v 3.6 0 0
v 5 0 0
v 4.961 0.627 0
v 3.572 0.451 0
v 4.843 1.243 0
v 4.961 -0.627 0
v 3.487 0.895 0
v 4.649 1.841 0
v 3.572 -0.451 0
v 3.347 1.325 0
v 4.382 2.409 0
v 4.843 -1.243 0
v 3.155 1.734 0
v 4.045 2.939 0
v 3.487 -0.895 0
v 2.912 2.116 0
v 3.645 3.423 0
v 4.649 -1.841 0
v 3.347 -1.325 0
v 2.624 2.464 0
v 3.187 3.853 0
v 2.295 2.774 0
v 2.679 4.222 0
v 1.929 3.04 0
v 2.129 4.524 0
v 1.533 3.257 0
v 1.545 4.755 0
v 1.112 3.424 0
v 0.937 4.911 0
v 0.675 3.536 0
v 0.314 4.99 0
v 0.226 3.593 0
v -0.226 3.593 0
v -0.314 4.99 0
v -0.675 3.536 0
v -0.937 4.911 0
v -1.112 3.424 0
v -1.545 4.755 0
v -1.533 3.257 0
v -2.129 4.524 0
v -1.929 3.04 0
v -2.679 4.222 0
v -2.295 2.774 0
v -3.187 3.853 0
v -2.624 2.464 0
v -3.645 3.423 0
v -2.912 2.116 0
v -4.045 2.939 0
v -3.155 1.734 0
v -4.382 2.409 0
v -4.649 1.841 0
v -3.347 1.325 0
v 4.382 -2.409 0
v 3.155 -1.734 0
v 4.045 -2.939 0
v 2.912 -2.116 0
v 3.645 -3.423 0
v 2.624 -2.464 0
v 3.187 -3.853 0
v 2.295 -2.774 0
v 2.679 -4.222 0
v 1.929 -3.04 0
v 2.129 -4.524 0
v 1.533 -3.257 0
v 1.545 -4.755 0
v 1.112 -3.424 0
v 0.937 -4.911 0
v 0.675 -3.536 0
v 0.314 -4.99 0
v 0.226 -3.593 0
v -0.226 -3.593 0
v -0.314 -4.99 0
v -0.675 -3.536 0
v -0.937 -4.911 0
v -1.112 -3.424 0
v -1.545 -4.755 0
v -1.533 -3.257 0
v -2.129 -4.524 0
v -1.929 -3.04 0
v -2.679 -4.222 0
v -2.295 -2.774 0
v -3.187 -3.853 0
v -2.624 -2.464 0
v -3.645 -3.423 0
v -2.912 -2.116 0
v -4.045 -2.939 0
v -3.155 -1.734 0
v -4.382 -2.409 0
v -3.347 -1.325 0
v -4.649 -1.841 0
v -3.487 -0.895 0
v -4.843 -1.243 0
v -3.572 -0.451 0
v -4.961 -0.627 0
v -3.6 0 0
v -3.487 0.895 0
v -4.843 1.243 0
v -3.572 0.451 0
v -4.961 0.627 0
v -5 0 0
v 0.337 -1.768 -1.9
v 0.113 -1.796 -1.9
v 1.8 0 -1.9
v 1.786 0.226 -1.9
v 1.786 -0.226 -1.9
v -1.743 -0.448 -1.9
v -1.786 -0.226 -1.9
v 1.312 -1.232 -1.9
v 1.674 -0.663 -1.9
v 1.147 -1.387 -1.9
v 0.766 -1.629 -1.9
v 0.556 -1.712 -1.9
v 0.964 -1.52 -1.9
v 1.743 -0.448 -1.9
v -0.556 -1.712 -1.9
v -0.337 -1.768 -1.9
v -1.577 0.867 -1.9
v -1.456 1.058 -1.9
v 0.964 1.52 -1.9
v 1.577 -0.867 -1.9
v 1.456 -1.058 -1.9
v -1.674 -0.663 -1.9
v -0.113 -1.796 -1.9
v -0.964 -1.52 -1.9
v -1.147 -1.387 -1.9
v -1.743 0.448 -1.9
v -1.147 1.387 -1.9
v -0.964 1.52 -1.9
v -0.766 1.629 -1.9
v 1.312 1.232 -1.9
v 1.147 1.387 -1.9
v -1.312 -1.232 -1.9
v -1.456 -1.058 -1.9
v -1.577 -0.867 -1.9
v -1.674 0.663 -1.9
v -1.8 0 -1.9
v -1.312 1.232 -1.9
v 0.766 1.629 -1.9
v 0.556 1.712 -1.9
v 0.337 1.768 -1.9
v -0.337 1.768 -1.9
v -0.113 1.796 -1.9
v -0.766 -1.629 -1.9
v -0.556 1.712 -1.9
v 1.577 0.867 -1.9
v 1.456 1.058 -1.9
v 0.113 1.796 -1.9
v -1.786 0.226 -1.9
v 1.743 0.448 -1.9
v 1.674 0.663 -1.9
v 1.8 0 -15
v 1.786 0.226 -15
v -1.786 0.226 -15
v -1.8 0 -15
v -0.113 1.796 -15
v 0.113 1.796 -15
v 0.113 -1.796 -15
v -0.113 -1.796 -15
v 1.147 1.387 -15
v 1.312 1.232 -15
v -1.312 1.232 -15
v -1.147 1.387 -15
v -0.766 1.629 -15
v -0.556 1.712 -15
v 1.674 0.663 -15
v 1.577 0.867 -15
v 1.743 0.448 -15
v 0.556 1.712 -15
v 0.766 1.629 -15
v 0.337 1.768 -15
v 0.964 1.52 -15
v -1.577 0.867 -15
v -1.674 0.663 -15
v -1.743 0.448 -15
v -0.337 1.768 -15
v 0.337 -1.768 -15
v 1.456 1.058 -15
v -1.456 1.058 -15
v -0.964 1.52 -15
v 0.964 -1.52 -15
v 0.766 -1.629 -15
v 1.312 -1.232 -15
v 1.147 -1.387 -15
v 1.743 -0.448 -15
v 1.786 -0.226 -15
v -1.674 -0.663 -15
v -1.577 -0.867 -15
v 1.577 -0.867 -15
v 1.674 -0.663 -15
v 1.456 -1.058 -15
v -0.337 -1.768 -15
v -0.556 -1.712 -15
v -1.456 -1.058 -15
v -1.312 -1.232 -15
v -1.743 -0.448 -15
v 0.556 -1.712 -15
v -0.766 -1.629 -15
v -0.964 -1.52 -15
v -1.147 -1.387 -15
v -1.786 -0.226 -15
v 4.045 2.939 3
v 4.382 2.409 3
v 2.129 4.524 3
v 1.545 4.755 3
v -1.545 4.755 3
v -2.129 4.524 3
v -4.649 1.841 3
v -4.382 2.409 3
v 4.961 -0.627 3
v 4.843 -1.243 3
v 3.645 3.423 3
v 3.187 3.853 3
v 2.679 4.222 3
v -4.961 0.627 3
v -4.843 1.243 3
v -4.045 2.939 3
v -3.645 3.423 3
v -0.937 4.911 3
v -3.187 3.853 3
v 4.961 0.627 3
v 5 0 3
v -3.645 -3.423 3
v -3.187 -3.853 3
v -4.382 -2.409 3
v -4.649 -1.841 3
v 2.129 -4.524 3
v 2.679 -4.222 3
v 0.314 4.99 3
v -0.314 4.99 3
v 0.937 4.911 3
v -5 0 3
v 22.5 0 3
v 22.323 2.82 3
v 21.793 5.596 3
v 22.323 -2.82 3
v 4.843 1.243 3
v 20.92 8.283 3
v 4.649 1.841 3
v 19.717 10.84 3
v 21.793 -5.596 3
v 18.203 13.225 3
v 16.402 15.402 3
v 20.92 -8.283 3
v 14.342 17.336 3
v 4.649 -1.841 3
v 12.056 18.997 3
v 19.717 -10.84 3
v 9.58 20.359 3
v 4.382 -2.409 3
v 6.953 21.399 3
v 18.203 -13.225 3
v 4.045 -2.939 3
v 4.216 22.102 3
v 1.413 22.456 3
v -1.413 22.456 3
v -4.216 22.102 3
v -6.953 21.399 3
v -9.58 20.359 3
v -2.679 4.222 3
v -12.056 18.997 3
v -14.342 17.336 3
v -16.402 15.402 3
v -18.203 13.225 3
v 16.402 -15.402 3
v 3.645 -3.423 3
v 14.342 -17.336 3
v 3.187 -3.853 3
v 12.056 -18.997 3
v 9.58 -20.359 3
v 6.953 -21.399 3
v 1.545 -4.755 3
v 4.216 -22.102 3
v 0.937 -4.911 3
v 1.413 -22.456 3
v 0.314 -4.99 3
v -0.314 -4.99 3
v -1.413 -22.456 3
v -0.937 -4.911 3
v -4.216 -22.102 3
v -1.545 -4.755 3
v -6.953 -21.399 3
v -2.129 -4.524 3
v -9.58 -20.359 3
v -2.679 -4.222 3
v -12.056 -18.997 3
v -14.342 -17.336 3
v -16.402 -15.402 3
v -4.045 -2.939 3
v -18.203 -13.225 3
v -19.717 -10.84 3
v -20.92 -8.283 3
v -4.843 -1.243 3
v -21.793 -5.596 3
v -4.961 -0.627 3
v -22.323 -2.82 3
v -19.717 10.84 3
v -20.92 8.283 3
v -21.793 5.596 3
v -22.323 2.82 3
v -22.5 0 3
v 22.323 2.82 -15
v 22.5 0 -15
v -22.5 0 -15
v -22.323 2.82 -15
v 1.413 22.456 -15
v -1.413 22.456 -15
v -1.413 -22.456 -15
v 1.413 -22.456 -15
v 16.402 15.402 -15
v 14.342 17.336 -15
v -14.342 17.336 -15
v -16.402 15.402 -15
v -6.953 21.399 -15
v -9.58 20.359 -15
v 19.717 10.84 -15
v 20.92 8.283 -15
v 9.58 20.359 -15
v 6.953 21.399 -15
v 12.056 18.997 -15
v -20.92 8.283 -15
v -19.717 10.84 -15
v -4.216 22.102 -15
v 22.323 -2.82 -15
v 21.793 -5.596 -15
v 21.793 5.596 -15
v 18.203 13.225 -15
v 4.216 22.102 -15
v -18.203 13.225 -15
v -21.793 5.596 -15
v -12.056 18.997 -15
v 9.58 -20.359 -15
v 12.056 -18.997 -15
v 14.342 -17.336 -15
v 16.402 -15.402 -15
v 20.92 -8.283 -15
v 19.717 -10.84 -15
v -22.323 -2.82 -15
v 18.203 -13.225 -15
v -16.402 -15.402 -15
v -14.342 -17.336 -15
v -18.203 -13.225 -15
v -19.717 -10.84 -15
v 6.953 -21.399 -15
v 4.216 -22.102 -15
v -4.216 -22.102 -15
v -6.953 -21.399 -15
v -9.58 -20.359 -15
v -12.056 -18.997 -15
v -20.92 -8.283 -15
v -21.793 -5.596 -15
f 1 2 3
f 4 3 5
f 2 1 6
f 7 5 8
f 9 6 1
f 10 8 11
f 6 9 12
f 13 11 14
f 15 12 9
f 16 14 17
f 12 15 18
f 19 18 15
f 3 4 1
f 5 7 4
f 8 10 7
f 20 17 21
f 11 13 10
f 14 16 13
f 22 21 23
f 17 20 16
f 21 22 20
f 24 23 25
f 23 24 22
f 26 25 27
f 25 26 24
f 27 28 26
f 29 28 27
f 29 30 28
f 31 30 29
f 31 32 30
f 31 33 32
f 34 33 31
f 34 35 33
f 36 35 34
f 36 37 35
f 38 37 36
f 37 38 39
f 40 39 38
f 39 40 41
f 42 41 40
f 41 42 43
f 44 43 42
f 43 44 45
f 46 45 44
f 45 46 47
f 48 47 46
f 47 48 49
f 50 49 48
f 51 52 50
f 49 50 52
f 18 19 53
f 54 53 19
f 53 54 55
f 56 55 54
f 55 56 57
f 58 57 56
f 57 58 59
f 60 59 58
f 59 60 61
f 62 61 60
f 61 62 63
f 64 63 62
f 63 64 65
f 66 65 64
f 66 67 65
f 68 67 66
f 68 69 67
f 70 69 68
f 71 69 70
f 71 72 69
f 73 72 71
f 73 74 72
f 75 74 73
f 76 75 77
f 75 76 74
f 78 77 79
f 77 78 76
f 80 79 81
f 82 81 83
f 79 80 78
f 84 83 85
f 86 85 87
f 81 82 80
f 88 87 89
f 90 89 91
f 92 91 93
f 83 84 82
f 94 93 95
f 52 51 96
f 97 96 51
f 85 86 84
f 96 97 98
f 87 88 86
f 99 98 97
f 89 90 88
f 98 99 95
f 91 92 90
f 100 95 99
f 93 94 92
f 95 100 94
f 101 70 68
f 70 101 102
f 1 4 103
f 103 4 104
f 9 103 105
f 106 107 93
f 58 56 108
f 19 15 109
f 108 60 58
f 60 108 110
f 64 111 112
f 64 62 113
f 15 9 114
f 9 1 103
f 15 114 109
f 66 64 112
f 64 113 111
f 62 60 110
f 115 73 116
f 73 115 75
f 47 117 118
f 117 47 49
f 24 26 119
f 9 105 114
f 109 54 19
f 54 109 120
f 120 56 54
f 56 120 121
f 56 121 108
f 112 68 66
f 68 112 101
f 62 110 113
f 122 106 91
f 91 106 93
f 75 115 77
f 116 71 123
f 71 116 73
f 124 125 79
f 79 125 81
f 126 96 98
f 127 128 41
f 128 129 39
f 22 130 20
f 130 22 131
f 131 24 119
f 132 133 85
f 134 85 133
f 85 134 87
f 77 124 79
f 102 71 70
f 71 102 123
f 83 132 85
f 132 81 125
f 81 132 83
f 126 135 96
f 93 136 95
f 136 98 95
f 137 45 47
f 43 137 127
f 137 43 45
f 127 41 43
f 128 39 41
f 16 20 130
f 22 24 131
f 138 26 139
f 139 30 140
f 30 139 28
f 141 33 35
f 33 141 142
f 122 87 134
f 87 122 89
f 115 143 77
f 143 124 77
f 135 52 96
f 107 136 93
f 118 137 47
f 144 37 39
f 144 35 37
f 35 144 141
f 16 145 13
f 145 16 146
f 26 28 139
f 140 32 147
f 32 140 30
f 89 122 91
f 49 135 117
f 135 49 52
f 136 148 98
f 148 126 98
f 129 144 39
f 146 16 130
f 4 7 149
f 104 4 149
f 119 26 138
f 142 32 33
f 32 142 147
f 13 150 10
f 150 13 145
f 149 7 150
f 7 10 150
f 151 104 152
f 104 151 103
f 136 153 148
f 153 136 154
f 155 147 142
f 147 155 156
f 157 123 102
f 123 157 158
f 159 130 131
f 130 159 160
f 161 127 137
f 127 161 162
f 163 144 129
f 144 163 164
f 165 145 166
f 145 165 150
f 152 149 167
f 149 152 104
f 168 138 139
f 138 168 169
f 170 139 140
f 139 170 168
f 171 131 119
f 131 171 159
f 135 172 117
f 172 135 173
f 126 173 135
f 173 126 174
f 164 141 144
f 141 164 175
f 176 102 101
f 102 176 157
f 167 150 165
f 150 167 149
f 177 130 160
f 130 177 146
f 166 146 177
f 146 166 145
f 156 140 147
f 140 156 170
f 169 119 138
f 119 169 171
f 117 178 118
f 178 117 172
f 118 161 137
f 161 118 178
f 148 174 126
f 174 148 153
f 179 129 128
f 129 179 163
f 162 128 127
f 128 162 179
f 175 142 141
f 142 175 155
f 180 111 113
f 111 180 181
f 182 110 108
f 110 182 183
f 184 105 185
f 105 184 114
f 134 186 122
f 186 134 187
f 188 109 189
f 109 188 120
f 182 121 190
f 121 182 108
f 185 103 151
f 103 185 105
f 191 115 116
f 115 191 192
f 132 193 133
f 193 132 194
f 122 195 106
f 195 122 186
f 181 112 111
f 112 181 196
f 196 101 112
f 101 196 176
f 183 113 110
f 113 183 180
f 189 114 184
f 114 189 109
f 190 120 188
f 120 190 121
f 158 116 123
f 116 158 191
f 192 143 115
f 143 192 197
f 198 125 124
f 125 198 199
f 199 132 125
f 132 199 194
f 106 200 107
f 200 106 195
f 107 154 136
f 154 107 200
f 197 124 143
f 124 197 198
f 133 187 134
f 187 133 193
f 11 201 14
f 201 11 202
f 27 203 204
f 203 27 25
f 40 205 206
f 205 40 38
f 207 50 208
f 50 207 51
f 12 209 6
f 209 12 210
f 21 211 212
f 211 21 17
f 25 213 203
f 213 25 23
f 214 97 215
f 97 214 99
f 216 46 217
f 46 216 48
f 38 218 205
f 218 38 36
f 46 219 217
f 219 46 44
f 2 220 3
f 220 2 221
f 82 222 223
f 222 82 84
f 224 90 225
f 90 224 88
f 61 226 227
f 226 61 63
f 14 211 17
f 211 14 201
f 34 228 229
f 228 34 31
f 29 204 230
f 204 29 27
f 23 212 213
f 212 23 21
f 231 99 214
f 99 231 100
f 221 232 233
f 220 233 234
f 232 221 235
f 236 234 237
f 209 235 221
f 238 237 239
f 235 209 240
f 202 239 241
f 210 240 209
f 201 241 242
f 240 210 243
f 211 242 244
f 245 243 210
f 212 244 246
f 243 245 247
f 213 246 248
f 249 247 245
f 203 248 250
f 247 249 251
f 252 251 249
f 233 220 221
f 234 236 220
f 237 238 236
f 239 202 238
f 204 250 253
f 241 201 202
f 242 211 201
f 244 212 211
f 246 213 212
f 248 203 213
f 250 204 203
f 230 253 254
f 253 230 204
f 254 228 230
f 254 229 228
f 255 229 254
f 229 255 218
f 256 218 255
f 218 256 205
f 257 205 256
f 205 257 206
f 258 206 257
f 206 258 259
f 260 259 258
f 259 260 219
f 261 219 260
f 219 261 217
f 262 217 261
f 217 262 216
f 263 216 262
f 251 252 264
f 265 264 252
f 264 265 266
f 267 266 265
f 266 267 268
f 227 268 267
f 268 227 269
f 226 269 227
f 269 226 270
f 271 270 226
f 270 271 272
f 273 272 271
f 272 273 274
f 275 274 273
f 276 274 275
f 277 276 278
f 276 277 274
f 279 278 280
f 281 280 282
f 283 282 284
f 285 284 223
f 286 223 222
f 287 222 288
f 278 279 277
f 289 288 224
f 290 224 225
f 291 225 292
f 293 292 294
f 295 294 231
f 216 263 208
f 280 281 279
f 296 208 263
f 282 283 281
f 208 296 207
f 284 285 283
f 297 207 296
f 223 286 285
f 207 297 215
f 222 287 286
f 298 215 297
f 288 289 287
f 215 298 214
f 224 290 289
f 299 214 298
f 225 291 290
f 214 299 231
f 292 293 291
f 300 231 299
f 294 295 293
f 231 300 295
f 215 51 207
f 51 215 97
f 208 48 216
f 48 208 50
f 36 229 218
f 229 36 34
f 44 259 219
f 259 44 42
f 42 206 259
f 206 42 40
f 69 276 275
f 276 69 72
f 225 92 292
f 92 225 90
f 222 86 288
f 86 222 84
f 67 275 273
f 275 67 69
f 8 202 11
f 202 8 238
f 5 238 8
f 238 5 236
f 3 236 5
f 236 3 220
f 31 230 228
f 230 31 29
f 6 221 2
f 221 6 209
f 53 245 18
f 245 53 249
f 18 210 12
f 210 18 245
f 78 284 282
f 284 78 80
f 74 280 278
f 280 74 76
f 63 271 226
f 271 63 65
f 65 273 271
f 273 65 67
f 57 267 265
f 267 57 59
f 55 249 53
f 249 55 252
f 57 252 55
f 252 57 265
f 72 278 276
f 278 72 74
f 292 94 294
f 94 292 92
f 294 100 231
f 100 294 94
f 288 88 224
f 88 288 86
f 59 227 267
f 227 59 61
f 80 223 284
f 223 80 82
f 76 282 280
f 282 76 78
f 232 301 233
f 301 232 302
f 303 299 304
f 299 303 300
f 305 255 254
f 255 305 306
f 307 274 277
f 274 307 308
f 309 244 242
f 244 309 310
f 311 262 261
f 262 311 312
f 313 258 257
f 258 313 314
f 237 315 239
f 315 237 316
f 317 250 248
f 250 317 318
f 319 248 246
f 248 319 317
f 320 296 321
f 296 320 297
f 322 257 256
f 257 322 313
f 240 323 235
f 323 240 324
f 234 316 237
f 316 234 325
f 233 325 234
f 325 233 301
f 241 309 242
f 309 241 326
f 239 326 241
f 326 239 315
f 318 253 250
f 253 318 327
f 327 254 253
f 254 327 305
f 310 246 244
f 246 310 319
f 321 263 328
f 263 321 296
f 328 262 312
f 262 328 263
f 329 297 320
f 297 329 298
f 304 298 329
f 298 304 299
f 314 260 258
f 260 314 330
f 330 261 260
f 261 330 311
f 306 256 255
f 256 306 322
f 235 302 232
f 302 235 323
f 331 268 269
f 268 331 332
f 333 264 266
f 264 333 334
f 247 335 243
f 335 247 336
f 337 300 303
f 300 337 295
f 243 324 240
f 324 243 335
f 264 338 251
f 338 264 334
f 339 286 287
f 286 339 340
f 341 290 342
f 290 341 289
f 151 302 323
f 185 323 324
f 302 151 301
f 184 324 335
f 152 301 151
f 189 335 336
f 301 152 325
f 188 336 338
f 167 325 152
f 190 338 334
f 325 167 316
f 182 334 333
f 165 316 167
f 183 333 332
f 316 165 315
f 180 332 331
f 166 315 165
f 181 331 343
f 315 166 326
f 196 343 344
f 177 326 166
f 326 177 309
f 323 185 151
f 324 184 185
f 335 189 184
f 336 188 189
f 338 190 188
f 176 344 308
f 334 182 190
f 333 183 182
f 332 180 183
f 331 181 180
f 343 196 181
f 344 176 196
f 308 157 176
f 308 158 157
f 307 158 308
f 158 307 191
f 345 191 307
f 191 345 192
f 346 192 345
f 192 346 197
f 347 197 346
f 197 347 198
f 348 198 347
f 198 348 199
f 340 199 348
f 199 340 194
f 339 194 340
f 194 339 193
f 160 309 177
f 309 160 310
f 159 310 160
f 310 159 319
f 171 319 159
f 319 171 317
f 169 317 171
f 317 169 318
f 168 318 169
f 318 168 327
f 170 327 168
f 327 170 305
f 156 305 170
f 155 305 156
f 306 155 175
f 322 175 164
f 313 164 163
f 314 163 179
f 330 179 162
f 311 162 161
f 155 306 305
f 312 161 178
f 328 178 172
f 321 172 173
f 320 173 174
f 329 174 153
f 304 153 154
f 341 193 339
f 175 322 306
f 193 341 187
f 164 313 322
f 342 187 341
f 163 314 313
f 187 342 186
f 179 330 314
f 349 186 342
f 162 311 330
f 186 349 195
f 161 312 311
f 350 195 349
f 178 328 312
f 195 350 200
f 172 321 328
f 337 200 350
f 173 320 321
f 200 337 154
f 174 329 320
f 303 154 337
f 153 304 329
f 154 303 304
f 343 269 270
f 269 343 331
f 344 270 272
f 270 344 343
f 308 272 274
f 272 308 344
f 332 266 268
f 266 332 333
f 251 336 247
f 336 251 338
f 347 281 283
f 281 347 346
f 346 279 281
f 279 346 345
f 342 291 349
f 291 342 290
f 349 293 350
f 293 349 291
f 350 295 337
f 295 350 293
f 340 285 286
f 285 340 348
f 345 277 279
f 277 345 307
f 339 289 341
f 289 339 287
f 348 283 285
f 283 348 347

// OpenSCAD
$fn = 50;

difference() {
	union() {
		translate(v = [0, 0, -15.0]) {
			cylinder(h = 18, r = 22.5);
		}
	}
	union() {
		translate(v = [0, 0, 0]) {
			rotate(a = [0, 0, 0]) {
				difference() {
					union() {
						translate(v = [0, 0, -18.0]) {
							cylinder(h = 18, r = 1.5);
						}
						translate(v = [0, 0, -1.9]) {
							cylinder(h = 1.9, r1 = 1.8, r2 = 3.6);
						}
						translate(v = [0, 0, -18.0]) {
							cylinder(h = 18, r = 1.8);
						}
						translate(v = [0, 0, -18.0]) {
							cylinder(h = 18, r = 1.5);
						}
					}
					union();
				}
			}
		}
		#cylinder(h = 3, r = 5.0);
	}
}
